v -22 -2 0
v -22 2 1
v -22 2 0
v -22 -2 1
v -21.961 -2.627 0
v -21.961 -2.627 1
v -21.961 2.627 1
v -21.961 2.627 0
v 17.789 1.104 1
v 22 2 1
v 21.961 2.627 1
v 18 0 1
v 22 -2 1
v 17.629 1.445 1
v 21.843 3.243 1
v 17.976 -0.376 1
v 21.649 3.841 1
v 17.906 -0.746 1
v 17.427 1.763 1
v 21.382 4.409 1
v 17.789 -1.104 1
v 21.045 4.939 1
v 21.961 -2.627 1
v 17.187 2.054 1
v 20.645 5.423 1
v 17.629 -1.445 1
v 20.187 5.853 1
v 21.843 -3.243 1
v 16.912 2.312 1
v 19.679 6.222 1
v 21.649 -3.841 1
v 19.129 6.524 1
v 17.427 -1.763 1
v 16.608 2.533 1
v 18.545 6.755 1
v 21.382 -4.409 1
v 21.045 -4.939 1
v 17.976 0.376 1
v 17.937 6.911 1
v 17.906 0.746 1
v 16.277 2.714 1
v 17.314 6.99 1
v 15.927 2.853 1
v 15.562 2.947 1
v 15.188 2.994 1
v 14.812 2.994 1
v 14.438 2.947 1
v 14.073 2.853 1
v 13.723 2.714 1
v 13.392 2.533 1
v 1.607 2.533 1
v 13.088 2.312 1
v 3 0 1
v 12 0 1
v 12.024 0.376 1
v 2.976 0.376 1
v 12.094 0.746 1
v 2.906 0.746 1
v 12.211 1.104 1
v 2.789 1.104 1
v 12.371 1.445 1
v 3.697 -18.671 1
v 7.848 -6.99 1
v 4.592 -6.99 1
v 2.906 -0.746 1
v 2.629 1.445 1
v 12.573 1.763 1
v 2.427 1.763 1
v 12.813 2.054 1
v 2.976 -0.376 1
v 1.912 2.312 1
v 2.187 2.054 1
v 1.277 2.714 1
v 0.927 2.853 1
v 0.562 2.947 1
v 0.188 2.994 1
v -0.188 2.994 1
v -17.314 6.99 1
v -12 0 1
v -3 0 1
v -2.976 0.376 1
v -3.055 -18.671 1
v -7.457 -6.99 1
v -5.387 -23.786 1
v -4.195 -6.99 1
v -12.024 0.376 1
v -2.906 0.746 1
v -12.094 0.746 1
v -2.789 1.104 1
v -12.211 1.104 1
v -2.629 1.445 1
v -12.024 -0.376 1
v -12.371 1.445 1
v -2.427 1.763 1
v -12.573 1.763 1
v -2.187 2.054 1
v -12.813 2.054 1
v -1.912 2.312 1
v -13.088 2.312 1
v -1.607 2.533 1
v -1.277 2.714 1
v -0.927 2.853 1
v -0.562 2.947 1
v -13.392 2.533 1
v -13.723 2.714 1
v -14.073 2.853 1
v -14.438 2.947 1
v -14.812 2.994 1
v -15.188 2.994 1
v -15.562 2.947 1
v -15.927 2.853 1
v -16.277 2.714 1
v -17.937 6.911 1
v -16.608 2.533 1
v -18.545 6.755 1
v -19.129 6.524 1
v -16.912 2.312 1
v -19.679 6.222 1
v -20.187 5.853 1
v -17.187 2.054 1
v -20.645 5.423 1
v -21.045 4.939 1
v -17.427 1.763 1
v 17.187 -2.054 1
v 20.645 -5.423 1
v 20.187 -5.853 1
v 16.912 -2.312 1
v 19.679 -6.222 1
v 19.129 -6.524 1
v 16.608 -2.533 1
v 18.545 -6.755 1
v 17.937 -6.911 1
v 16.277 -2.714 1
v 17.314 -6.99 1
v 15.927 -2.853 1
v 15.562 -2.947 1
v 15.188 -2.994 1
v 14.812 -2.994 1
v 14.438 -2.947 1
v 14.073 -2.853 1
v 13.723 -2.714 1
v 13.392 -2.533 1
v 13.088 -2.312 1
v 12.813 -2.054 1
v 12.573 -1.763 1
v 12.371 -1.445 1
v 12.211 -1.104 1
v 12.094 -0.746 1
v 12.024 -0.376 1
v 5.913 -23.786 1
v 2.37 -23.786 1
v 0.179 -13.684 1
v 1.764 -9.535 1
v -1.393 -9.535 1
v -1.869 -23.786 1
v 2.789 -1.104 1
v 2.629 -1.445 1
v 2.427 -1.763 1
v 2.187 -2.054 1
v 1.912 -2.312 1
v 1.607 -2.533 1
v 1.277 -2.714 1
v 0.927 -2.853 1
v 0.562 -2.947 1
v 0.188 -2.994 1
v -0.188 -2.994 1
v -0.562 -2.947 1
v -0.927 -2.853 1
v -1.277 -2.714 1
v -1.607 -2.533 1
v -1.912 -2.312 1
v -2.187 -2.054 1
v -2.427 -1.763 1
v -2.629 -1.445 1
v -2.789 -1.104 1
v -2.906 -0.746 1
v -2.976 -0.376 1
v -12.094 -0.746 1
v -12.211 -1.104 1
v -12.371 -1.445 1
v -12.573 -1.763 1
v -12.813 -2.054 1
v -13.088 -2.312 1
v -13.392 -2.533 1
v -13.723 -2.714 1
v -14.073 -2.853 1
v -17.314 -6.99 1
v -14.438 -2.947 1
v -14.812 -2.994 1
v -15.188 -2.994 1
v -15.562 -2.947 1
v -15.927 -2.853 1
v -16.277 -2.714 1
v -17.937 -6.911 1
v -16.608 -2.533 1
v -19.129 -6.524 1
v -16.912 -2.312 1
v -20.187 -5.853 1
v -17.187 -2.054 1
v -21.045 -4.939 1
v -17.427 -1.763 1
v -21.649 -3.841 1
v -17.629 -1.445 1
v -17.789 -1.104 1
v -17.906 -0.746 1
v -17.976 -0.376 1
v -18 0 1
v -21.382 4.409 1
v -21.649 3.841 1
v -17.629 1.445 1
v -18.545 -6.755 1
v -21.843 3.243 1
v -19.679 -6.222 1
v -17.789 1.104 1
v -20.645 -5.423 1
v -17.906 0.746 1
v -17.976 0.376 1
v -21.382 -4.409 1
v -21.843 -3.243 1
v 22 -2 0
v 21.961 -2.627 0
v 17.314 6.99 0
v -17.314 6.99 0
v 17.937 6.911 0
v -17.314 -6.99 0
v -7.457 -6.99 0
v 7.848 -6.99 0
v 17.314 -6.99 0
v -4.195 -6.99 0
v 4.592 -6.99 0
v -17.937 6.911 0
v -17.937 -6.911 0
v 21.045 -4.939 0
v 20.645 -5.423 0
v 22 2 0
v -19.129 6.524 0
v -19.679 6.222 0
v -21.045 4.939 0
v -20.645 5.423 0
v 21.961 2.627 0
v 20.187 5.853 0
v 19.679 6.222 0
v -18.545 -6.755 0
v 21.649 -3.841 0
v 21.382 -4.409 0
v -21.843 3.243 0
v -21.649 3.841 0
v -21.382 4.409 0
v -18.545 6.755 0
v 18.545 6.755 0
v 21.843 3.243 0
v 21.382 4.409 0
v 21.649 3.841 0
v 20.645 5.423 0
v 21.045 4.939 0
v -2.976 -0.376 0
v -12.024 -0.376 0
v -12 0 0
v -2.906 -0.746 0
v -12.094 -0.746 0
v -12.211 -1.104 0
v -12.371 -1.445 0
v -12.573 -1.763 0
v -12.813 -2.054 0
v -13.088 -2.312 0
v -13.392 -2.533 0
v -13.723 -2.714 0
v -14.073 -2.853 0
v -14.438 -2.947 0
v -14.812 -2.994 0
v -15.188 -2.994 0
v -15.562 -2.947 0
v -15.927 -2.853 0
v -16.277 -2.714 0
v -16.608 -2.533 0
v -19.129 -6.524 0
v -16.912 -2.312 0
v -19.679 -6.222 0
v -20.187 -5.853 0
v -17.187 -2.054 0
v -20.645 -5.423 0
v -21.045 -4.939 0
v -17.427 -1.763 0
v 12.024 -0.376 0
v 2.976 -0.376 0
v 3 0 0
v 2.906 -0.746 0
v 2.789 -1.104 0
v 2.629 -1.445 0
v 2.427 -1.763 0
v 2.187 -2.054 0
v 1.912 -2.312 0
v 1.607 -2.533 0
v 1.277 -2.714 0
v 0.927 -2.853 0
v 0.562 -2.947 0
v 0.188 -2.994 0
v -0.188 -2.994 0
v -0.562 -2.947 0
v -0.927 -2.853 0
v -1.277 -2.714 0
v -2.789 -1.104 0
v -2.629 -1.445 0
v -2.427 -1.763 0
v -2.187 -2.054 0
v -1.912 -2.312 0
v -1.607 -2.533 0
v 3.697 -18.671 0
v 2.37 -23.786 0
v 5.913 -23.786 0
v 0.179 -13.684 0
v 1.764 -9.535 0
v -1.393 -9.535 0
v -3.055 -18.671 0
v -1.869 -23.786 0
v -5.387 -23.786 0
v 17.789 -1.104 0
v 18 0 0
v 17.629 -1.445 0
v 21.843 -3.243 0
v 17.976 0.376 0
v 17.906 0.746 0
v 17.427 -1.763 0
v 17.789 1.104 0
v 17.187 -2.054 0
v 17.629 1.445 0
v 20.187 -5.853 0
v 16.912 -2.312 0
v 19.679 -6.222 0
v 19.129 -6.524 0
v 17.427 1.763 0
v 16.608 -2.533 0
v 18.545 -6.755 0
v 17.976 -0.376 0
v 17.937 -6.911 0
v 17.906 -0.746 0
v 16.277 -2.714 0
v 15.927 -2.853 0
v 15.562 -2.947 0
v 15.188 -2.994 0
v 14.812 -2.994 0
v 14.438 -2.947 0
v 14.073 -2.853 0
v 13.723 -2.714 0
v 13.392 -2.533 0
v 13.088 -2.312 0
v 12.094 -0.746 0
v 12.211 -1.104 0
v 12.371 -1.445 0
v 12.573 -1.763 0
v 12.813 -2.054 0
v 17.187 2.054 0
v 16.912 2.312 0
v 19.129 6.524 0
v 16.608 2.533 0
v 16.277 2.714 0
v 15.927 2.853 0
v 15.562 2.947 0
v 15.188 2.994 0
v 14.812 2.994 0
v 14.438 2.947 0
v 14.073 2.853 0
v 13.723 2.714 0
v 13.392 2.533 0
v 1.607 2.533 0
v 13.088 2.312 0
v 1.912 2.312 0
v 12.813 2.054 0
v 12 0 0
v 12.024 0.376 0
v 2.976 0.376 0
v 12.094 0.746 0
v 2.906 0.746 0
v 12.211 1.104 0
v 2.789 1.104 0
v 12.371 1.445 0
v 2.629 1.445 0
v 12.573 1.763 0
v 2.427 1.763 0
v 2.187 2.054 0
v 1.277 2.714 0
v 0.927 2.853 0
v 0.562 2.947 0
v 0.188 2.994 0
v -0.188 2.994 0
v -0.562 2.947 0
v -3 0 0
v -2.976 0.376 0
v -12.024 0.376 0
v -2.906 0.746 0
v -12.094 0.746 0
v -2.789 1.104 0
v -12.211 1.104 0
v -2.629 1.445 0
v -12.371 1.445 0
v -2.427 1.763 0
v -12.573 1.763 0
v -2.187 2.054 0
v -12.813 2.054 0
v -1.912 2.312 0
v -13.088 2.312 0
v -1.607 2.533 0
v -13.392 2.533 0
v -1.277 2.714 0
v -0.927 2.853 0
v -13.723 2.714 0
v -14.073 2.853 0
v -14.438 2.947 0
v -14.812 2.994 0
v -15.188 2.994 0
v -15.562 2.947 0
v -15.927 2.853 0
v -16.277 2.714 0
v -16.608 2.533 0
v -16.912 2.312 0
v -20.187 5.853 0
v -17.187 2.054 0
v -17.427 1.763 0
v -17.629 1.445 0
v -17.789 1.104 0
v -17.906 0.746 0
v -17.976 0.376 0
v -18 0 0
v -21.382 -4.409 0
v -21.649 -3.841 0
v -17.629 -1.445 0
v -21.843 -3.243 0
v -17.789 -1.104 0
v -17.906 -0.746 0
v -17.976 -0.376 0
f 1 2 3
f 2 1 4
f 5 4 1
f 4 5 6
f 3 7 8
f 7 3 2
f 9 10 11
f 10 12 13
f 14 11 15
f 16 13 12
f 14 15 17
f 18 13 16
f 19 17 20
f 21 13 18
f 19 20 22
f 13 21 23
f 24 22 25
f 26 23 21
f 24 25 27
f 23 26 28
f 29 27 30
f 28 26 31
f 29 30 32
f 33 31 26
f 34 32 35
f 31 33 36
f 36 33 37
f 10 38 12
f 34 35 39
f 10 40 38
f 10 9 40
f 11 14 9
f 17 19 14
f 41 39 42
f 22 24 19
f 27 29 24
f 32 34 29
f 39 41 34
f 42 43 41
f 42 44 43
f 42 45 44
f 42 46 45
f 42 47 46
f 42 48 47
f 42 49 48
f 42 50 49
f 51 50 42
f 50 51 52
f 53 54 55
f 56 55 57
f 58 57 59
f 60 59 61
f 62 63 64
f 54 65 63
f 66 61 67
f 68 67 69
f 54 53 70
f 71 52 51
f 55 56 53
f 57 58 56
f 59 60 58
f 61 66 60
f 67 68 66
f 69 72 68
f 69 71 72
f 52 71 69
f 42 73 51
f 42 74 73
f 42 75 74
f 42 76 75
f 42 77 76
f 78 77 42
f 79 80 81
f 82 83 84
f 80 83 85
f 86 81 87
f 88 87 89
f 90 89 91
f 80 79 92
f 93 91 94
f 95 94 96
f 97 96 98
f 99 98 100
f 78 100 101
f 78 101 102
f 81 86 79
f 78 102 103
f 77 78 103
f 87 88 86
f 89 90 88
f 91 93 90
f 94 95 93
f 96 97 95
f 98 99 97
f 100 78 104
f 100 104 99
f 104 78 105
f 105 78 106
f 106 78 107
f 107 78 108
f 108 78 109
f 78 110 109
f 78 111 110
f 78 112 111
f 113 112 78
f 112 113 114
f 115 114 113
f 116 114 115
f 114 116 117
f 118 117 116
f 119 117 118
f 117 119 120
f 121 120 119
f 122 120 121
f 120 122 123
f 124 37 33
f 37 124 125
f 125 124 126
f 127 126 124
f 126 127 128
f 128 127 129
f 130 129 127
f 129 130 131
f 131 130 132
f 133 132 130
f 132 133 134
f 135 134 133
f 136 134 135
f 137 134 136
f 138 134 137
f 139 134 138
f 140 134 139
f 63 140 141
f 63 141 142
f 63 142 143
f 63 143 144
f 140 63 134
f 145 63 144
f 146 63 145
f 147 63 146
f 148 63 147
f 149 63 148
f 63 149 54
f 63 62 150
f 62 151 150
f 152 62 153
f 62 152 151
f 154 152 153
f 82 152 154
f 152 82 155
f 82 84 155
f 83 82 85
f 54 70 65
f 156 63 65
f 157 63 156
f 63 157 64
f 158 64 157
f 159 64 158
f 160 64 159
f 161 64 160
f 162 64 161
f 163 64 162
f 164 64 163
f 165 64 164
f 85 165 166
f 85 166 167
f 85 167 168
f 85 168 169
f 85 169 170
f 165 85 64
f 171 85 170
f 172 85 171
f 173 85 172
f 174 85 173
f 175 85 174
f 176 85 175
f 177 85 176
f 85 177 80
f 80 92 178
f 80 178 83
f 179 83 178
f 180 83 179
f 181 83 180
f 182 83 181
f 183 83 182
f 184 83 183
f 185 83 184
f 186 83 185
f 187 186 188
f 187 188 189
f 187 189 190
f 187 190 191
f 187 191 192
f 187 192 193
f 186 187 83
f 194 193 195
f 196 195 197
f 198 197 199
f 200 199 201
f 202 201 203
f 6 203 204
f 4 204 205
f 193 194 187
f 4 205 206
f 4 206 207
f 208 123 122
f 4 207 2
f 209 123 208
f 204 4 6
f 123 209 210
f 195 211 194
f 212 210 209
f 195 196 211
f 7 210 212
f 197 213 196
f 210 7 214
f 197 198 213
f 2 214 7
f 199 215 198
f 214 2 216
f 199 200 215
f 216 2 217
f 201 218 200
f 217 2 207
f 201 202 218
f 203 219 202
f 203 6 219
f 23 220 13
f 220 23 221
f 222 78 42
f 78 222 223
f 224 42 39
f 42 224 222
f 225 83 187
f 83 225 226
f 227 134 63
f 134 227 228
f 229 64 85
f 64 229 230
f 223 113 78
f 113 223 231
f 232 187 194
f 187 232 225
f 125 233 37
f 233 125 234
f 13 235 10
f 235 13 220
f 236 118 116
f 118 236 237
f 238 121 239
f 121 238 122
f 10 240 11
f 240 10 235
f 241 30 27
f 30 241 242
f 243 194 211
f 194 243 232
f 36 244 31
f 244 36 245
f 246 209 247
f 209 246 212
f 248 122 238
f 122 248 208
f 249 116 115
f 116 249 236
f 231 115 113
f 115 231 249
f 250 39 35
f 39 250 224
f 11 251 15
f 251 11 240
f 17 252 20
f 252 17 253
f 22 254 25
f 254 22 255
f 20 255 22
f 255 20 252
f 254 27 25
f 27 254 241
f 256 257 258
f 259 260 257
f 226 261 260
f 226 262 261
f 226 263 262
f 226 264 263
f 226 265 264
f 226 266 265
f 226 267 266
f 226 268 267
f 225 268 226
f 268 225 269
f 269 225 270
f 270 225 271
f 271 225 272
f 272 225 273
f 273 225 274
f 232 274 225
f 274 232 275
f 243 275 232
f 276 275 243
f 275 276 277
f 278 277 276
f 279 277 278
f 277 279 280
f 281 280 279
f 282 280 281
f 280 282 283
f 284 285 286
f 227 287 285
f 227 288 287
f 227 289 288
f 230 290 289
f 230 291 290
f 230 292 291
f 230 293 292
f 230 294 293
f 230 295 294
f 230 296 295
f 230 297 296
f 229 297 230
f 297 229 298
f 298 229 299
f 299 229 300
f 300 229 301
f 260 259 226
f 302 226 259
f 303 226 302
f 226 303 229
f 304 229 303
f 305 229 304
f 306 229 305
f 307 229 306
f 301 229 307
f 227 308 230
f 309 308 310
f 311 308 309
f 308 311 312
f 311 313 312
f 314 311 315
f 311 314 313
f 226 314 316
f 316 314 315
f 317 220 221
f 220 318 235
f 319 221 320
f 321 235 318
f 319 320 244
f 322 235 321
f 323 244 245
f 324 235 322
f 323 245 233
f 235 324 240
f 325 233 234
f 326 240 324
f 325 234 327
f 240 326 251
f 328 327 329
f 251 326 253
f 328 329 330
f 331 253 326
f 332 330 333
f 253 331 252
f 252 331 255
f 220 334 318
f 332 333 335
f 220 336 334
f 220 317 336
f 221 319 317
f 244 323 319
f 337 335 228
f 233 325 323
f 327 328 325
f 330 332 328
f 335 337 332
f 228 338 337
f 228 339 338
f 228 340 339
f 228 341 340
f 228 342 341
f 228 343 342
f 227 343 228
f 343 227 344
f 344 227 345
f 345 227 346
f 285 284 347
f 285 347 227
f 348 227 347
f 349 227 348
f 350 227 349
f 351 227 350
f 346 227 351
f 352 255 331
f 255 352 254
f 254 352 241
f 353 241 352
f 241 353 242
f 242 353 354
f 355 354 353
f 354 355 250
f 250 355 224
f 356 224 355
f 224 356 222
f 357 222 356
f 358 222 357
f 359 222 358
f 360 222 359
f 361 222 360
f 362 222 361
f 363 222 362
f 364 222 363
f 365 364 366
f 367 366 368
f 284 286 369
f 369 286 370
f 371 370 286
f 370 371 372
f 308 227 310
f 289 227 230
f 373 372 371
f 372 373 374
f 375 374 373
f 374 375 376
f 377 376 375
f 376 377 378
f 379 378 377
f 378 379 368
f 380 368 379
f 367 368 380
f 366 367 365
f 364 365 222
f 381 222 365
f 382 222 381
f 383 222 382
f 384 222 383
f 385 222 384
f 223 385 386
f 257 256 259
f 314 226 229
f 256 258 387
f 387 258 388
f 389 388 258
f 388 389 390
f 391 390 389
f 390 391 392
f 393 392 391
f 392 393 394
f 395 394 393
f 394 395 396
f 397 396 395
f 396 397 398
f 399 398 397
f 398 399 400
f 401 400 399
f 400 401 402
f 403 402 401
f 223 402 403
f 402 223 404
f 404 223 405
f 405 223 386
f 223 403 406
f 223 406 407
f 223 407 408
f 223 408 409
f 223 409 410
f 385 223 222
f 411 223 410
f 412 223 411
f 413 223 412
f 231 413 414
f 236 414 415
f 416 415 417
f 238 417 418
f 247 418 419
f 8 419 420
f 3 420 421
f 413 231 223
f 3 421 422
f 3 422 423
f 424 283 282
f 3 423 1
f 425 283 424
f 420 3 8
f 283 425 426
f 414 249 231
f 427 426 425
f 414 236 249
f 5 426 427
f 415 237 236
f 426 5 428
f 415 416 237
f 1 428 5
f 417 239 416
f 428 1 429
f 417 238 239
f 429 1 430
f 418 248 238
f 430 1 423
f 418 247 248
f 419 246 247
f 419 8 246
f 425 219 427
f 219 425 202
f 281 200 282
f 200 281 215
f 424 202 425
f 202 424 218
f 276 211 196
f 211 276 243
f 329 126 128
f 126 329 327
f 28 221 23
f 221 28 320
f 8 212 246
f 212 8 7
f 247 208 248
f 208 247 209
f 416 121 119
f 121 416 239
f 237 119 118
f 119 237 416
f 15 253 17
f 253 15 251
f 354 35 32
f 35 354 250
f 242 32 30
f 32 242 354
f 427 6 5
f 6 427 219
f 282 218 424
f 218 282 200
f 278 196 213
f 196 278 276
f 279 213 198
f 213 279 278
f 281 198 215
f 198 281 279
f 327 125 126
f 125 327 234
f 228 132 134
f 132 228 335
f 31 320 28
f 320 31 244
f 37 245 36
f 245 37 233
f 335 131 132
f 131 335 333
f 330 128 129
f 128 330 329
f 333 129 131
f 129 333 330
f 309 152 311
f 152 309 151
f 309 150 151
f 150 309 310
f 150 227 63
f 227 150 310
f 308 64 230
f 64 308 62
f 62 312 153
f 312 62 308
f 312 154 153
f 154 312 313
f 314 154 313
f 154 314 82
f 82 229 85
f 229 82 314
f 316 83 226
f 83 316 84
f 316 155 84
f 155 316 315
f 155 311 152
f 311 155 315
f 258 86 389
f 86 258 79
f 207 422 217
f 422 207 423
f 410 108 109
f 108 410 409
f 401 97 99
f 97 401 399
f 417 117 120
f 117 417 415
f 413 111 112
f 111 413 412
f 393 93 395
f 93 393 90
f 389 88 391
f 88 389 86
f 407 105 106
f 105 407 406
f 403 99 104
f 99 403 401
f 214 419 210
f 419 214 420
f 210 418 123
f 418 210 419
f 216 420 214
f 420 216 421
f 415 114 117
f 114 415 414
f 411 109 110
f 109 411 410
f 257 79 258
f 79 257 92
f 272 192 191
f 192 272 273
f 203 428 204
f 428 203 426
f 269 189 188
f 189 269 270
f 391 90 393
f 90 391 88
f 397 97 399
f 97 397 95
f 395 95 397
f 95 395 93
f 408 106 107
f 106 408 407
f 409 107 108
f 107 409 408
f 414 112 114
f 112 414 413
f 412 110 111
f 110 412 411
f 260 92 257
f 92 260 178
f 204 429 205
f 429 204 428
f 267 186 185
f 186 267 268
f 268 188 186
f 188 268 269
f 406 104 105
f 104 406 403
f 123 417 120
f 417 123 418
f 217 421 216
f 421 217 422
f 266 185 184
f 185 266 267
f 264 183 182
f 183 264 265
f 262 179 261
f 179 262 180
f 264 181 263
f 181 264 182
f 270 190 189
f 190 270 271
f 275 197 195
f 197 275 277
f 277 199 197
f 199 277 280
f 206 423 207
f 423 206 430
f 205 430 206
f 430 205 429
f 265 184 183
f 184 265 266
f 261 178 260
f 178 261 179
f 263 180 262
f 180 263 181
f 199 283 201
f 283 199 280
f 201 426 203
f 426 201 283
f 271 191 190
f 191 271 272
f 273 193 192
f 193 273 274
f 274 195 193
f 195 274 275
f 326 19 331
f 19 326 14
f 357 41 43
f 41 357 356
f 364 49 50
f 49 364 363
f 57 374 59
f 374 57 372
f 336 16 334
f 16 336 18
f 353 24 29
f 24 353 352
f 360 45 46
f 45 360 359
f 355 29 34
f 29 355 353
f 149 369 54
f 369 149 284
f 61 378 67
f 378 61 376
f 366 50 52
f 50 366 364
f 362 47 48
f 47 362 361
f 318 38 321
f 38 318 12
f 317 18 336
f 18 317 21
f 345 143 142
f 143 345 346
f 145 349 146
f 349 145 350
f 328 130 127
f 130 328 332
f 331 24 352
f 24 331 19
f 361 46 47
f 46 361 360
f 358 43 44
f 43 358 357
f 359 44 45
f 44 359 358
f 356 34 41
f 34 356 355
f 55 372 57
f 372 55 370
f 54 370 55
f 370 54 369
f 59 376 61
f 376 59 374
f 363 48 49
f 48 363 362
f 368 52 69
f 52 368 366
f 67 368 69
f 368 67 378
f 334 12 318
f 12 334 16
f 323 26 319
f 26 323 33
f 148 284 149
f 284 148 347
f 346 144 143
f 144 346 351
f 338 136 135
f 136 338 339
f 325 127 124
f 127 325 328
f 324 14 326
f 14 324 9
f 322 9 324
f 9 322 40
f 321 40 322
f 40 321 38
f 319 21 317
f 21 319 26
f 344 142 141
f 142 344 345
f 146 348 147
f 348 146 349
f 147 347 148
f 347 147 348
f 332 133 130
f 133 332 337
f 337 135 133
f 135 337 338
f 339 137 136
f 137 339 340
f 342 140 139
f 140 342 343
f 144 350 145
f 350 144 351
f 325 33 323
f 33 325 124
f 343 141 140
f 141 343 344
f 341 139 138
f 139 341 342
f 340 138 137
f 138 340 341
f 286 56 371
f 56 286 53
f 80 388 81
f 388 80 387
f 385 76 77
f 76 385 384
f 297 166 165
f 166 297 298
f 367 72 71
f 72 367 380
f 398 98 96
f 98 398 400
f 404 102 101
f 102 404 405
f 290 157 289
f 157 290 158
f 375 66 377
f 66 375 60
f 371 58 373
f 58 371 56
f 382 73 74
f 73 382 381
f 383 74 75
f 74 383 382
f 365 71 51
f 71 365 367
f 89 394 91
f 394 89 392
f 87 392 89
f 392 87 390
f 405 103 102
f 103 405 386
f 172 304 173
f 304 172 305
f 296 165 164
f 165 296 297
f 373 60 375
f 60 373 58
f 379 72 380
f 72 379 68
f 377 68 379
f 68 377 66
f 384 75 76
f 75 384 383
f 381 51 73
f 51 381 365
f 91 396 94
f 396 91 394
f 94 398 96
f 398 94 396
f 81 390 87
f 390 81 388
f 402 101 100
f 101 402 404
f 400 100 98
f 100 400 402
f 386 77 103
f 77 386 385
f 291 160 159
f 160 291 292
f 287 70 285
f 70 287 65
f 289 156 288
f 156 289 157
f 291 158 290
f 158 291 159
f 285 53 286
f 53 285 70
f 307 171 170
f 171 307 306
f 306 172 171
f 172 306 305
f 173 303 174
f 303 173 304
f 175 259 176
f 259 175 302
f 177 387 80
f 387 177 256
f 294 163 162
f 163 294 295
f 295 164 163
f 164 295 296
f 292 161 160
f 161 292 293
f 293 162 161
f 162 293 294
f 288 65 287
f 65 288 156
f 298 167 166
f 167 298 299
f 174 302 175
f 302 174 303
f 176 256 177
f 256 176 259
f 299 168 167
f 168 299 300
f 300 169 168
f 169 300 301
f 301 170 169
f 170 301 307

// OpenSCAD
$fn = 50;


difference() {
	union() {
		translate(v = [0, 0, 0]) {
			rotate(a = [0, 0, 0]) {
				hull() {
					translate(v = [-17.0000000000, 2.0000000000, 0]) {
						rotate(a = [0, 0, 0]) {
							translate(v = [0, 0, 0]) {
								rotate(a = [0, 0, 0]) {
									cylinder(h = 1, r = 5);
								}
							}
						}
					}
					translate(v = [17.0000000000, 2.0000000000, 0]) {
						rotate(a = [0, 0, 0]) {
							translate(v = [0, 0, 0]) {
								rotate(a = [0, 0, 0]) {
									cylinder(h = 1, r = 5);
								}
							}
						}
					}
					translate(v = [-17.0000000000, -2.0000000000, 0]) {
						rotate(a = [0, 0, 0]) {
							translate(v = [0, 0, 0]) {
								rotate(a = [0, 0, 0]) {
									cylinder(h = 1, r = 5);
								}
							}
						}
					}
					translate(v = [17.0000000000, -2.0000000000, 0]) {
						rotate(a = [0, 0, 0]) {
							translate(v = [0, 0, 0]) {
								rotate(a = [0, 0, 0]) {
									cylinder(h = 1, r = 5);
								}
							}
						}
					}
				}
			}
		}
		translate(v = [0, -5, 0]) {
			rotate(a = [0, 0, 0]) {
				linear_extrude(height = 1) {
					text(font = "DejaVu Sans Mono:style=Bold", halign = "center", size = 19.0000000000, text = "W", valign = "top");
				}
			}
		}
	}
	union() {
		translate(v = [-15.0000000000, 0.0000000000, -125.0000000000]) {
			rotate(a = [0, 0, 0]) {
				cylinder(h = 250, r = 3.0000000000);
			}
		}
		translate(v = [15.0000000000, 0.0000000000, -125.0000000000]) {
			rotate(a = [0, 0, 0]) {
				cylinder(h = 250, r = 3.0000000000);
			}
		}
		translate(v = [15.0000000000, 0.0000000000, -125.0000000000]) {
			rotate(a = [0, 0, 0]) {
				cylinder(h = 250, r = 3.0000000000);
			}
		}
		translate(v = [0, 0, -125.0000000000]) {
			rotate(a = [0, 0, 0]) {
				cylinder(h = 250, r = 3.0000000000);
			}
		}
	}
}
